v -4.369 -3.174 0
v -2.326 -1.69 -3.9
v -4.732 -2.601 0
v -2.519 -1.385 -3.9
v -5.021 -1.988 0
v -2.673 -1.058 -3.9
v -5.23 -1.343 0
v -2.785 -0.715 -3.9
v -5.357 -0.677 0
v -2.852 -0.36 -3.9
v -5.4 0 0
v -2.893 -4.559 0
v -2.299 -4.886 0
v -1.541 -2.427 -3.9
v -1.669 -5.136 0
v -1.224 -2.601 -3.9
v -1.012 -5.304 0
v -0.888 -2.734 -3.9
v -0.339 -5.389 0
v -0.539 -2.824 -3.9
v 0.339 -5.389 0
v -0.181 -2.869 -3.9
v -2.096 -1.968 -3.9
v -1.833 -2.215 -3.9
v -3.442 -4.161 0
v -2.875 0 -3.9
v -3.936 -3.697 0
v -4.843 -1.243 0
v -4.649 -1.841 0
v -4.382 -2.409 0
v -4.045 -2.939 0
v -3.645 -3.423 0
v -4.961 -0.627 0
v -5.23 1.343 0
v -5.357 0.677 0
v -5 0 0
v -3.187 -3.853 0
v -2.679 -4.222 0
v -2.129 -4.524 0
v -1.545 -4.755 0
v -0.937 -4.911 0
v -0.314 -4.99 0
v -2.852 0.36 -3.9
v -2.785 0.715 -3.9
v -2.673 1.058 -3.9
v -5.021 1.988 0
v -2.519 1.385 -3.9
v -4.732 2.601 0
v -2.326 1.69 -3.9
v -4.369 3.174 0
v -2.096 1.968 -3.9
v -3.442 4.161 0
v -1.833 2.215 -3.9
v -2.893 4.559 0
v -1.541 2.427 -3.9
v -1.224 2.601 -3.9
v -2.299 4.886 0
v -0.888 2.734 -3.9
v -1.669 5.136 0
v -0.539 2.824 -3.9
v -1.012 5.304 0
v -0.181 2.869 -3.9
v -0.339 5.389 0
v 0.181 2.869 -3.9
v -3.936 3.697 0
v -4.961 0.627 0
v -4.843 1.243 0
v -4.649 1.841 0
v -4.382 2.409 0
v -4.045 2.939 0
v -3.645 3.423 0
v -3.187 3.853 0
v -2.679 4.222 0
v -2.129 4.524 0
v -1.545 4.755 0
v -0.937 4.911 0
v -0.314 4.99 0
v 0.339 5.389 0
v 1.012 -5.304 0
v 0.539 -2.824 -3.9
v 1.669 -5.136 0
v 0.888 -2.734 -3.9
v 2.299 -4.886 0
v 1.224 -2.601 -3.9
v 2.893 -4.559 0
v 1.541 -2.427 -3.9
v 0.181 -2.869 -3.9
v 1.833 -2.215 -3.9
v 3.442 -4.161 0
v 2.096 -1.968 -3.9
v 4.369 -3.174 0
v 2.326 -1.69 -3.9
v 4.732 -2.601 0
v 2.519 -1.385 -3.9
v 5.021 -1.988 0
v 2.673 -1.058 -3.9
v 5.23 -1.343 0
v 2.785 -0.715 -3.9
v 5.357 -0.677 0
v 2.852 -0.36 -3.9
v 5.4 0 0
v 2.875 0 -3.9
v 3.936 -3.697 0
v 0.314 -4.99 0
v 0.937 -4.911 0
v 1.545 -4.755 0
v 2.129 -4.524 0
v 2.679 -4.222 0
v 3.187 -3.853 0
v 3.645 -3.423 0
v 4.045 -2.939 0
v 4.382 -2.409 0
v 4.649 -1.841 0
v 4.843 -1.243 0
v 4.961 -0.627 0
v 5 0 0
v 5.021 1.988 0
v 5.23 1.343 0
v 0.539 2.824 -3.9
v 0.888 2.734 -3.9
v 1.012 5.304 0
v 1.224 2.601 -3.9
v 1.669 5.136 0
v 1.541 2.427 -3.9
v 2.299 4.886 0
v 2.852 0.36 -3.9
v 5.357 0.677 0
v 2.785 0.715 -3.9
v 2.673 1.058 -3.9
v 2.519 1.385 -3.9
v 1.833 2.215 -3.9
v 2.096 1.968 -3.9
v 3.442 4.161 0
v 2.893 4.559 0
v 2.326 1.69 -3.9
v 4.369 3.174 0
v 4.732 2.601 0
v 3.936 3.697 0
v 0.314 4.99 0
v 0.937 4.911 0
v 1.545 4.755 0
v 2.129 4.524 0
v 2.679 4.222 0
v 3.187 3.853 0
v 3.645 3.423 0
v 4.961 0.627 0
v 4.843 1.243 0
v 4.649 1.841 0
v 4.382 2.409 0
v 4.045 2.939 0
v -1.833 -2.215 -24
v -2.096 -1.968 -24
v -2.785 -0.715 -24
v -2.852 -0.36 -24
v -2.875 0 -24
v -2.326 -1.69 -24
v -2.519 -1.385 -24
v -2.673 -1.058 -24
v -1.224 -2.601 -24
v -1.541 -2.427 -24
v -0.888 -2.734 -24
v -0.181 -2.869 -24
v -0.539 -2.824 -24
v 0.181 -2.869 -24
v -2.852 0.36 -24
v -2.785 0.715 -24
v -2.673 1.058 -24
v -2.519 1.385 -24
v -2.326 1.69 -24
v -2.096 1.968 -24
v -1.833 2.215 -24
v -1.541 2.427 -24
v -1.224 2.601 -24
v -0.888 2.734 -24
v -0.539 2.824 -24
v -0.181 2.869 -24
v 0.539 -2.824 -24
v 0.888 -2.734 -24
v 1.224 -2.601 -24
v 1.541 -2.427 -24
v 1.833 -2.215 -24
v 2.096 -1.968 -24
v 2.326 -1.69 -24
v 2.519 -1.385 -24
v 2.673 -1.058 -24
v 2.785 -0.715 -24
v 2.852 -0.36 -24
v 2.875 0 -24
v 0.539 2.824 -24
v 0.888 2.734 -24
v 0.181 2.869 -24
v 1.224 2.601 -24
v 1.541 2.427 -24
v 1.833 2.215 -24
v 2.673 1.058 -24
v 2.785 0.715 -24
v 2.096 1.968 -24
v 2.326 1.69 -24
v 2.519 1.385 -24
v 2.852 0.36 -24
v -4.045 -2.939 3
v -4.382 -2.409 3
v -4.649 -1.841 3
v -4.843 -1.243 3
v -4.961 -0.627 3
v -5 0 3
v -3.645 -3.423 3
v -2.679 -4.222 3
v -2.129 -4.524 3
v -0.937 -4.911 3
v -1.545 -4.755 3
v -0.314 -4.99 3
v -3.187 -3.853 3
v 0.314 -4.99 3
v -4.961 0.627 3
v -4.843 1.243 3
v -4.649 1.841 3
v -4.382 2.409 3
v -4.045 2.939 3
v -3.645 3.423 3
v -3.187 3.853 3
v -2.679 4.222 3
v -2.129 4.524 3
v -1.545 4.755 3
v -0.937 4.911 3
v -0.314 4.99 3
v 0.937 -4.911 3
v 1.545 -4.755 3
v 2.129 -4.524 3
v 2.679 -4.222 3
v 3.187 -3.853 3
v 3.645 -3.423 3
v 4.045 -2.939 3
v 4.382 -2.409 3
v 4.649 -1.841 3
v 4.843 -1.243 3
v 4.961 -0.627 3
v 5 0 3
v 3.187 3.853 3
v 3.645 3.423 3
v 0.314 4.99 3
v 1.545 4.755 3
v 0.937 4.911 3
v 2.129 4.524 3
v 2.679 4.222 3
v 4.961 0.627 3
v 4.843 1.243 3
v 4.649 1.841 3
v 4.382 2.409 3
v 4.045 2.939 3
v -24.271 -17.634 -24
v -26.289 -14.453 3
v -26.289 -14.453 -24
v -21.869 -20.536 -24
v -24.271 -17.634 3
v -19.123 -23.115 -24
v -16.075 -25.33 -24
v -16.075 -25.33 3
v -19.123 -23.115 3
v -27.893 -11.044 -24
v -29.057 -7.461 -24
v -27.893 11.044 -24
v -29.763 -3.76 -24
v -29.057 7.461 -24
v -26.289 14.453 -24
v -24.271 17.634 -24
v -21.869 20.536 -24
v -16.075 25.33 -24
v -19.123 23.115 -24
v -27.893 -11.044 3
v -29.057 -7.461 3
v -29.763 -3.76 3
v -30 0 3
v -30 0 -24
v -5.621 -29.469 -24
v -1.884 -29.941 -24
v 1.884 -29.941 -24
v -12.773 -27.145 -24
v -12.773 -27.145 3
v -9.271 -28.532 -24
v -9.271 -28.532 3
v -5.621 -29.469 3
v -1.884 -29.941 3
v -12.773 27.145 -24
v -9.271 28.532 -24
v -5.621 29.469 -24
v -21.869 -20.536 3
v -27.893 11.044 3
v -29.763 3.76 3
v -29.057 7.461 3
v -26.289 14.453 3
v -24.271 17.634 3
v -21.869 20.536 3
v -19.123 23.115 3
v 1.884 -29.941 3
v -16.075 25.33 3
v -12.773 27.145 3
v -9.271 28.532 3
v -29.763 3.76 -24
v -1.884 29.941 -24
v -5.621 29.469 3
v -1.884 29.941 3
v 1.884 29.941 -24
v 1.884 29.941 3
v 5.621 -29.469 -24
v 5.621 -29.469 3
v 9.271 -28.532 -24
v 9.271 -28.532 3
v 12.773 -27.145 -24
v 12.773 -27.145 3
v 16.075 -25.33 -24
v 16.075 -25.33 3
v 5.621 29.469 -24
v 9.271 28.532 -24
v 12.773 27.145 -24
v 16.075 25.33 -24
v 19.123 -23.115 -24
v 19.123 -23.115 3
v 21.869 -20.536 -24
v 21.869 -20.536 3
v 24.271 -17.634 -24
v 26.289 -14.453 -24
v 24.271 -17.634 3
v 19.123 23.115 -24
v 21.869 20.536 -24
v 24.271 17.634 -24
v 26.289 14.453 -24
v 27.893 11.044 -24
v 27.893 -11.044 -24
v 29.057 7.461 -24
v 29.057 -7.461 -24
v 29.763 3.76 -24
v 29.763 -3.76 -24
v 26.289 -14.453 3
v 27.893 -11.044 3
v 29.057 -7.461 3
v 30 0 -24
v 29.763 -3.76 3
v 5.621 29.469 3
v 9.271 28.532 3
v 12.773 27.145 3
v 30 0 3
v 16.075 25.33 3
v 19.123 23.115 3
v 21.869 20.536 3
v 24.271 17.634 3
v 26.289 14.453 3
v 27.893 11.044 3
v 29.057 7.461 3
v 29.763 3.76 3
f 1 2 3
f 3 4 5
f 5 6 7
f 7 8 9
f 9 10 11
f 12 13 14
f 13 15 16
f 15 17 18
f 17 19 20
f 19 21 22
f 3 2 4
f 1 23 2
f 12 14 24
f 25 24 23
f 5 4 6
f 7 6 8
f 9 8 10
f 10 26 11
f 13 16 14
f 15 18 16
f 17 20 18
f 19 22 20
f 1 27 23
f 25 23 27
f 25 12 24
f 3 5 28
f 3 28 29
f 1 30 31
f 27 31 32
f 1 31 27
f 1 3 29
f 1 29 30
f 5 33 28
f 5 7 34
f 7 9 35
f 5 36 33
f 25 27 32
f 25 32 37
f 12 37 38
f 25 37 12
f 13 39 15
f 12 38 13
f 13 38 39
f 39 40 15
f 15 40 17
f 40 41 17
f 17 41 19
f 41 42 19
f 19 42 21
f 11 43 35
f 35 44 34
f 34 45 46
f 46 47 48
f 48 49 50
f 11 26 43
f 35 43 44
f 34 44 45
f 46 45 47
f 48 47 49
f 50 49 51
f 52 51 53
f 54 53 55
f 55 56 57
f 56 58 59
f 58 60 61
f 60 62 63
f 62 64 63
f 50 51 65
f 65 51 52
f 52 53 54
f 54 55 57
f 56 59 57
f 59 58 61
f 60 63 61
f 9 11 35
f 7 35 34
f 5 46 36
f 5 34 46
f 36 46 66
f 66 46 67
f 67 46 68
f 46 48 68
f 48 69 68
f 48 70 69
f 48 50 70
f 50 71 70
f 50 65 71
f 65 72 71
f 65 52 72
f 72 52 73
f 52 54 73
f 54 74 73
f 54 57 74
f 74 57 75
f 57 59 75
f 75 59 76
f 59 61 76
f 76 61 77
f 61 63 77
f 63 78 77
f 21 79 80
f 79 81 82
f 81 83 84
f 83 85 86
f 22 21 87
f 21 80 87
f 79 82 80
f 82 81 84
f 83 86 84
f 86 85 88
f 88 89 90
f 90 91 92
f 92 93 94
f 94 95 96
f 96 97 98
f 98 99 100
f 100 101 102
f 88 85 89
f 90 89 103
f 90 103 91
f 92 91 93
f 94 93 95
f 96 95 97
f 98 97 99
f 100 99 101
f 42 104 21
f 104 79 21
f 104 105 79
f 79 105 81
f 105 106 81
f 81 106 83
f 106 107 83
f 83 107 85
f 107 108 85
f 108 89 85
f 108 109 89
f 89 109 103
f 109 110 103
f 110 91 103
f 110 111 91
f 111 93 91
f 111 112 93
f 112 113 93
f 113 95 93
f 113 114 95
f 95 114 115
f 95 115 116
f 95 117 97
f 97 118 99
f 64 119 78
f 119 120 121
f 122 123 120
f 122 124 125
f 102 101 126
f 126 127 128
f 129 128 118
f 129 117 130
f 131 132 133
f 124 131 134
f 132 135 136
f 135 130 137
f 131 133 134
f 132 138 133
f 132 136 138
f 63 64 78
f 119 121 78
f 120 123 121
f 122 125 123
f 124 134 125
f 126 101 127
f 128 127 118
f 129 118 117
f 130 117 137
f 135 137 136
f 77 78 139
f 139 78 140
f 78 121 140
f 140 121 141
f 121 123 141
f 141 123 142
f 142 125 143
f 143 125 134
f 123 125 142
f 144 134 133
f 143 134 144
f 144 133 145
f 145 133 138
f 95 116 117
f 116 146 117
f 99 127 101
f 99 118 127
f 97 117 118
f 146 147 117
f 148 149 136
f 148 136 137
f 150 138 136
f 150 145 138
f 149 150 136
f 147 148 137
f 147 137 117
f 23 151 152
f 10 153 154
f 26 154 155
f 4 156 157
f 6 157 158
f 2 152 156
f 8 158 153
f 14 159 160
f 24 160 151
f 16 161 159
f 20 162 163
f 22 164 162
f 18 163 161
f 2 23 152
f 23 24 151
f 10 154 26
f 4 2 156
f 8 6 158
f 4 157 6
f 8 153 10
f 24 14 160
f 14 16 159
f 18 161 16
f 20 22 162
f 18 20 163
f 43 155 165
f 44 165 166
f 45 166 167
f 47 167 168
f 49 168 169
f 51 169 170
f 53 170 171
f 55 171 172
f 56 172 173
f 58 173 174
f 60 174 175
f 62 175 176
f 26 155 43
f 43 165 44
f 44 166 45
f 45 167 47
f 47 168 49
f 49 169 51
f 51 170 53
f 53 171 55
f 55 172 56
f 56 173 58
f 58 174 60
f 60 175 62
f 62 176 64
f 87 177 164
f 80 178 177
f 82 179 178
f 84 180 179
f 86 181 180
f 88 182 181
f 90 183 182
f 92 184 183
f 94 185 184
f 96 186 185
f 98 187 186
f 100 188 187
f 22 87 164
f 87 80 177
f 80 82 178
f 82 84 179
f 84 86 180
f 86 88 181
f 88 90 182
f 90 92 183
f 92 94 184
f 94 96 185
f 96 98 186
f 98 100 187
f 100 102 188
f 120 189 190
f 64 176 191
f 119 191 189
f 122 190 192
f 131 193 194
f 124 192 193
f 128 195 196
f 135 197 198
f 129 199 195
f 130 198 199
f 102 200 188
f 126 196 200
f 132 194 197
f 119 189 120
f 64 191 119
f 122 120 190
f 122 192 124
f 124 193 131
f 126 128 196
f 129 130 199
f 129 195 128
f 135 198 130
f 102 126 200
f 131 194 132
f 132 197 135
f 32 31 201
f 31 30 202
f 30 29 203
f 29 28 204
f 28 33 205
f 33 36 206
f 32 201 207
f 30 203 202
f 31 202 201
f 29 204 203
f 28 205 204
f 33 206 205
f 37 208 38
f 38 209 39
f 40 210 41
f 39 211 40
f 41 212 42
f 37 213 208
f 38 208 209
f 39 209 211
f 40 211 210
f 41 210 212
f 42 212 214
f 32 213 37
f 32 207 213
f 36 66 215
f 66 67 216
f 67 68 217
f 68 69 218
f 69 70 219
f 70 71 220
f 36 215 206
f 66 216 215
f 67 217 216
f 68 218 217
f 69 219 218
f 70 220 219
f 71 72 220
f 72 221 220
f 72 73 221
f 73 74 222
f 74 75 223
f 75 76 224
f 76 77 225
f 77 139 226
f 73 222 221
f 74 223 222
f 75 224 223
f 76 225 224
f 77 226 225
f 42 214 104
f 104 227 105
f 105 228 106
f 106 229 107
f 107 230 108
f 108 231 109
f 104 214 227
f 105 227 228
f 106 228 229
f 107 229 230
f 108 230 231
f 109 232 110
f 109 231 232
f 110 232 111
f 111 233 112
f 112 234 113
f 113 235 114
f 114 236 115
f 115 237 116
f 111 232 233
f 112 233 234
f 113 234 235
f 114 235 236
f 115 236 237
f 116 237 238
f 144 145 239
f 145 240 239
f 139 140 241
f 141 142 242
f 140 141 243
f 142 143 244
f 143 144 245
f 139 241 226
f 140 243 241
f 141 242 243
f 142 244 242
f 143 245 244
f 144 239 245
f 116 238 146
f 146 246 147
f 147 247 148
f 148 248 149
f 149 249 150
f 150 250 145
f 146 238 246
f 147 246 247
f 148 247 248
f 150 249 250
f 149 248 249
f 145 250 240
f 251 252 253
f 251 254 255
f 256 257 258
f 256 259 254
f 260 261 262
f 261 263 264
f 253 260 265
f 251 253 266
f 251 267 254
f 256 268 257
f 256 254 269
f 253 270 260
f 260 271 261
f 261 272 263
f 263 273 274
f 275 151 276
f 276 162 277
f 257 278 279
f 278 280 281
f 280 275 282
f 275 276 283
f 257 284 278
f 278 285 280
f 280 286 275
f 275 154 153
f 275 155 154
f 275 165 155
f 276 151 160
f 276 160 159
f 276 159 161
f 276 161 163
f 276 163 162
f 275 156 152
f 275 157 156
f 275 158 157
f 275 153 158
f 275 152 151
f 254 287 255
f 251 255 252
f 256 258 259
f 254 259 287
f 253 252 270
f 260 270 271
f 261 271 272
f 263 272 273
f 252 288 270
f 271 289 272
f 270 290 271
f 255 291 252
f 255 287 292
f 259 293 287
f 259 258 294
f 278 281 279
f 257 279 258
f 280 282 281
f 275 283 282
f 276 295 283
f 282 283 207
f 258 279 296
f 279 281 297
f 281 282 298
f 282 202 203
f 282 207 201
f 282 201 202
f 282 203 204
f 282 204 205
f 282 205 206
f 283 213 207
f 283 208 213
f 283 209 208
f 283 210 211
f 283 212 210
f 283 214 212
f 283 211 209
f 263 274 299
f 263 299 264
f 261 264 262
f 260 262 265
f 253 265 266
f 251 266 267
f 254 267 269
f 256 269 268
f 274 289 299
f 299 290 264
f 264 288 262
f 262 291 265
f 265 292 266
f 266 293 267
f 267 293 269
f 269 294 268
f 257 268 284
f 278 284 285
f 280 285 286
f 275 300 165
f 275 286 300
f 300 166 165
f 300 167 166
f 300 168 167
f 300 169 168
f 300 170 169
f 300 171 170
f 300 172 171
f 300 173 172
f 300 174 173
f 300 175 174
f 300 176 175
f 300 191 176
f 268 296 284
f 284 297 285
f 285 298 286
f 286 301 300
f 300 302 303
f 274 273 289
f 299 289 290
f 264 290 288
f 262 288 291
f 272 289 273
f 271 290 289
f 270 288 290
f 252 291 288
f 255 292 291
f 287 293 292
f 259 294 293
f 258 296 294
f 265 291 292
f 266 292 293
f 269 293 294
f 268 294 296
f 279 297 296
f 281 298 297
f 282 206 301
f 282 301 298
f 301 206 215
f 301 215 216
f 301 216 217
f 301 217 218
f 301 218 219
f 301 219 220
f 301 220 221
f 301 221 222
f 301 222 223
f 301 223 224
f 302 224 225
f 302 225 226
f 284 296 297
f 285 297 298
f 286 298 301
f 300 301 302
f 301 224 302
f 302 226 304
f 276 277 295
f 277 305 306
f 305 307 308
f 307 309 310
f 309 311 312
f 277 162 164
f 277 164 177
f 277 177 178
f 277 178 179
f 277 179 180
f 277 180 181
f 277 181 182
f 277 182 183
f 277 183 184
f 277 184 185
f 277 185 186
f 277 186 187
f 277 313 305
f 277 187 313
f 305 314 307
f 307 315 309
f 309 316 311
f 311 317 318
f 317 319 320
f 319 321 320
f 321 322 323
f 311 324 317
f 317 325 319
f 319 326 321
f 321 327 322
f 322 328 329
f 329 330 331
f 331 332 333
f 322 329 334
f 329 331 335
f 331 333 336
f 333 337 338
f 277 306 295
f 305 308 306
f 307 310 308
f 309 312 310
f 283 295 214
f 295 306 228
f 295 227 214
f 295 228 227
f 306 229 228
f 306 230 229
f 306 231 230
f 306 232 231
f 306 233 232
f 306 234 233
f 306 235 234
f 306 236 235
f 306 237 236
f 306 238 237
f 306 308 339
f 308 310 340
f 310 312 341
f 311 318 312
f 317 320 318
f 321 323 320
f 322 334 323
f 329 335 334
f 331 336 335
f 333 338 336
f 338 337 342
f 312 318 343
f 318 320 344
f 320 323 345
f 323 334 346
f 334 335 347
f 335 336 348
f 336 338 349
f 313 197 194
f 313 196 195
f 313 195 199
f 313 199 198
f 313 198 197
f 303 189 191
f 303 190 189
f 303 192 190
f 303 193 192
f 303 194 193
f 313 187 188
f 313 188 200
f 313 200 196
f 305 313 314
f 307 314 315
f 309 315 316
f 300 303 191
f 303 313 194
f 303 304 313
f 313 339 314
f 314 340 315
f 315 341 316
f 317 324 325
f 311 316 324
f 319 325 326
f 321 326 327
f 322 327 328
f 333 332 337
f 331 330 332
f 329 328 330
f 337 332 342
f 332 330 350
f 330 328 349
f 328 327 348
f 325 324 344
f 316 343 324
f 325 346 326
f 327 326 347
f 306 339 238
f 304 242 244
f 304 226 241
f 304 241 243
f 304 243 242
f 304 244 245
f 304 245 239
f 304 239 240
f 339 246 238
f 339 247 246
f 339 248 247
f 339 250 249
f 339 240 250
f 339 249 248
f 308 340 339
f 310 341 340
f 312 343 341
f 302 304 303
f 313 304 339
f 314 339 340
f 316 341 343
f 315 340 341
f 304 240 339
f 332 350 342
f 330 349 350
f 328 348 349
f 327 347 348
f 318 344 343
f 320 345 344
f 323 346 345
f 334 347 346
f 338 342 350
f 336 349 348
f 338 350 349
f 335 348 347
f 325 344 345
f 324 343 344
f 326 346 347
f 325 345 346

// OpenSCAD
$fn = 50;

difference() {
	union() {
		translate(v = [0, 0, -24.0]) {
			cylinder(h = 27, r = 30.0);
		}
	}
	union() {
		translate(v = [0, 0, 0]) {
			rotate(a = [0, 0, 0]) {
				difference() {
					union() {
						translate(v = [0, 0, -27.0]) {
							cylinder(h = 27, r = 2.6);
						}
						translate(v = [0, 0, -3.9]) {
							cylinder(h = 3.9, r1 = 2.875, r2 = 5.4);
						}
						translate(v = [0, 0, -27.0]) {
							cylinder(h = 27, r = 2.875);
						}
						translate(v = [0, 0, -27.0]) {
							cylinder(h = 27, r = 2.6);
						}
					}
					union();
				}
			}
		}
		#cylinder(h = 3, r = 5.0);
	}
}
